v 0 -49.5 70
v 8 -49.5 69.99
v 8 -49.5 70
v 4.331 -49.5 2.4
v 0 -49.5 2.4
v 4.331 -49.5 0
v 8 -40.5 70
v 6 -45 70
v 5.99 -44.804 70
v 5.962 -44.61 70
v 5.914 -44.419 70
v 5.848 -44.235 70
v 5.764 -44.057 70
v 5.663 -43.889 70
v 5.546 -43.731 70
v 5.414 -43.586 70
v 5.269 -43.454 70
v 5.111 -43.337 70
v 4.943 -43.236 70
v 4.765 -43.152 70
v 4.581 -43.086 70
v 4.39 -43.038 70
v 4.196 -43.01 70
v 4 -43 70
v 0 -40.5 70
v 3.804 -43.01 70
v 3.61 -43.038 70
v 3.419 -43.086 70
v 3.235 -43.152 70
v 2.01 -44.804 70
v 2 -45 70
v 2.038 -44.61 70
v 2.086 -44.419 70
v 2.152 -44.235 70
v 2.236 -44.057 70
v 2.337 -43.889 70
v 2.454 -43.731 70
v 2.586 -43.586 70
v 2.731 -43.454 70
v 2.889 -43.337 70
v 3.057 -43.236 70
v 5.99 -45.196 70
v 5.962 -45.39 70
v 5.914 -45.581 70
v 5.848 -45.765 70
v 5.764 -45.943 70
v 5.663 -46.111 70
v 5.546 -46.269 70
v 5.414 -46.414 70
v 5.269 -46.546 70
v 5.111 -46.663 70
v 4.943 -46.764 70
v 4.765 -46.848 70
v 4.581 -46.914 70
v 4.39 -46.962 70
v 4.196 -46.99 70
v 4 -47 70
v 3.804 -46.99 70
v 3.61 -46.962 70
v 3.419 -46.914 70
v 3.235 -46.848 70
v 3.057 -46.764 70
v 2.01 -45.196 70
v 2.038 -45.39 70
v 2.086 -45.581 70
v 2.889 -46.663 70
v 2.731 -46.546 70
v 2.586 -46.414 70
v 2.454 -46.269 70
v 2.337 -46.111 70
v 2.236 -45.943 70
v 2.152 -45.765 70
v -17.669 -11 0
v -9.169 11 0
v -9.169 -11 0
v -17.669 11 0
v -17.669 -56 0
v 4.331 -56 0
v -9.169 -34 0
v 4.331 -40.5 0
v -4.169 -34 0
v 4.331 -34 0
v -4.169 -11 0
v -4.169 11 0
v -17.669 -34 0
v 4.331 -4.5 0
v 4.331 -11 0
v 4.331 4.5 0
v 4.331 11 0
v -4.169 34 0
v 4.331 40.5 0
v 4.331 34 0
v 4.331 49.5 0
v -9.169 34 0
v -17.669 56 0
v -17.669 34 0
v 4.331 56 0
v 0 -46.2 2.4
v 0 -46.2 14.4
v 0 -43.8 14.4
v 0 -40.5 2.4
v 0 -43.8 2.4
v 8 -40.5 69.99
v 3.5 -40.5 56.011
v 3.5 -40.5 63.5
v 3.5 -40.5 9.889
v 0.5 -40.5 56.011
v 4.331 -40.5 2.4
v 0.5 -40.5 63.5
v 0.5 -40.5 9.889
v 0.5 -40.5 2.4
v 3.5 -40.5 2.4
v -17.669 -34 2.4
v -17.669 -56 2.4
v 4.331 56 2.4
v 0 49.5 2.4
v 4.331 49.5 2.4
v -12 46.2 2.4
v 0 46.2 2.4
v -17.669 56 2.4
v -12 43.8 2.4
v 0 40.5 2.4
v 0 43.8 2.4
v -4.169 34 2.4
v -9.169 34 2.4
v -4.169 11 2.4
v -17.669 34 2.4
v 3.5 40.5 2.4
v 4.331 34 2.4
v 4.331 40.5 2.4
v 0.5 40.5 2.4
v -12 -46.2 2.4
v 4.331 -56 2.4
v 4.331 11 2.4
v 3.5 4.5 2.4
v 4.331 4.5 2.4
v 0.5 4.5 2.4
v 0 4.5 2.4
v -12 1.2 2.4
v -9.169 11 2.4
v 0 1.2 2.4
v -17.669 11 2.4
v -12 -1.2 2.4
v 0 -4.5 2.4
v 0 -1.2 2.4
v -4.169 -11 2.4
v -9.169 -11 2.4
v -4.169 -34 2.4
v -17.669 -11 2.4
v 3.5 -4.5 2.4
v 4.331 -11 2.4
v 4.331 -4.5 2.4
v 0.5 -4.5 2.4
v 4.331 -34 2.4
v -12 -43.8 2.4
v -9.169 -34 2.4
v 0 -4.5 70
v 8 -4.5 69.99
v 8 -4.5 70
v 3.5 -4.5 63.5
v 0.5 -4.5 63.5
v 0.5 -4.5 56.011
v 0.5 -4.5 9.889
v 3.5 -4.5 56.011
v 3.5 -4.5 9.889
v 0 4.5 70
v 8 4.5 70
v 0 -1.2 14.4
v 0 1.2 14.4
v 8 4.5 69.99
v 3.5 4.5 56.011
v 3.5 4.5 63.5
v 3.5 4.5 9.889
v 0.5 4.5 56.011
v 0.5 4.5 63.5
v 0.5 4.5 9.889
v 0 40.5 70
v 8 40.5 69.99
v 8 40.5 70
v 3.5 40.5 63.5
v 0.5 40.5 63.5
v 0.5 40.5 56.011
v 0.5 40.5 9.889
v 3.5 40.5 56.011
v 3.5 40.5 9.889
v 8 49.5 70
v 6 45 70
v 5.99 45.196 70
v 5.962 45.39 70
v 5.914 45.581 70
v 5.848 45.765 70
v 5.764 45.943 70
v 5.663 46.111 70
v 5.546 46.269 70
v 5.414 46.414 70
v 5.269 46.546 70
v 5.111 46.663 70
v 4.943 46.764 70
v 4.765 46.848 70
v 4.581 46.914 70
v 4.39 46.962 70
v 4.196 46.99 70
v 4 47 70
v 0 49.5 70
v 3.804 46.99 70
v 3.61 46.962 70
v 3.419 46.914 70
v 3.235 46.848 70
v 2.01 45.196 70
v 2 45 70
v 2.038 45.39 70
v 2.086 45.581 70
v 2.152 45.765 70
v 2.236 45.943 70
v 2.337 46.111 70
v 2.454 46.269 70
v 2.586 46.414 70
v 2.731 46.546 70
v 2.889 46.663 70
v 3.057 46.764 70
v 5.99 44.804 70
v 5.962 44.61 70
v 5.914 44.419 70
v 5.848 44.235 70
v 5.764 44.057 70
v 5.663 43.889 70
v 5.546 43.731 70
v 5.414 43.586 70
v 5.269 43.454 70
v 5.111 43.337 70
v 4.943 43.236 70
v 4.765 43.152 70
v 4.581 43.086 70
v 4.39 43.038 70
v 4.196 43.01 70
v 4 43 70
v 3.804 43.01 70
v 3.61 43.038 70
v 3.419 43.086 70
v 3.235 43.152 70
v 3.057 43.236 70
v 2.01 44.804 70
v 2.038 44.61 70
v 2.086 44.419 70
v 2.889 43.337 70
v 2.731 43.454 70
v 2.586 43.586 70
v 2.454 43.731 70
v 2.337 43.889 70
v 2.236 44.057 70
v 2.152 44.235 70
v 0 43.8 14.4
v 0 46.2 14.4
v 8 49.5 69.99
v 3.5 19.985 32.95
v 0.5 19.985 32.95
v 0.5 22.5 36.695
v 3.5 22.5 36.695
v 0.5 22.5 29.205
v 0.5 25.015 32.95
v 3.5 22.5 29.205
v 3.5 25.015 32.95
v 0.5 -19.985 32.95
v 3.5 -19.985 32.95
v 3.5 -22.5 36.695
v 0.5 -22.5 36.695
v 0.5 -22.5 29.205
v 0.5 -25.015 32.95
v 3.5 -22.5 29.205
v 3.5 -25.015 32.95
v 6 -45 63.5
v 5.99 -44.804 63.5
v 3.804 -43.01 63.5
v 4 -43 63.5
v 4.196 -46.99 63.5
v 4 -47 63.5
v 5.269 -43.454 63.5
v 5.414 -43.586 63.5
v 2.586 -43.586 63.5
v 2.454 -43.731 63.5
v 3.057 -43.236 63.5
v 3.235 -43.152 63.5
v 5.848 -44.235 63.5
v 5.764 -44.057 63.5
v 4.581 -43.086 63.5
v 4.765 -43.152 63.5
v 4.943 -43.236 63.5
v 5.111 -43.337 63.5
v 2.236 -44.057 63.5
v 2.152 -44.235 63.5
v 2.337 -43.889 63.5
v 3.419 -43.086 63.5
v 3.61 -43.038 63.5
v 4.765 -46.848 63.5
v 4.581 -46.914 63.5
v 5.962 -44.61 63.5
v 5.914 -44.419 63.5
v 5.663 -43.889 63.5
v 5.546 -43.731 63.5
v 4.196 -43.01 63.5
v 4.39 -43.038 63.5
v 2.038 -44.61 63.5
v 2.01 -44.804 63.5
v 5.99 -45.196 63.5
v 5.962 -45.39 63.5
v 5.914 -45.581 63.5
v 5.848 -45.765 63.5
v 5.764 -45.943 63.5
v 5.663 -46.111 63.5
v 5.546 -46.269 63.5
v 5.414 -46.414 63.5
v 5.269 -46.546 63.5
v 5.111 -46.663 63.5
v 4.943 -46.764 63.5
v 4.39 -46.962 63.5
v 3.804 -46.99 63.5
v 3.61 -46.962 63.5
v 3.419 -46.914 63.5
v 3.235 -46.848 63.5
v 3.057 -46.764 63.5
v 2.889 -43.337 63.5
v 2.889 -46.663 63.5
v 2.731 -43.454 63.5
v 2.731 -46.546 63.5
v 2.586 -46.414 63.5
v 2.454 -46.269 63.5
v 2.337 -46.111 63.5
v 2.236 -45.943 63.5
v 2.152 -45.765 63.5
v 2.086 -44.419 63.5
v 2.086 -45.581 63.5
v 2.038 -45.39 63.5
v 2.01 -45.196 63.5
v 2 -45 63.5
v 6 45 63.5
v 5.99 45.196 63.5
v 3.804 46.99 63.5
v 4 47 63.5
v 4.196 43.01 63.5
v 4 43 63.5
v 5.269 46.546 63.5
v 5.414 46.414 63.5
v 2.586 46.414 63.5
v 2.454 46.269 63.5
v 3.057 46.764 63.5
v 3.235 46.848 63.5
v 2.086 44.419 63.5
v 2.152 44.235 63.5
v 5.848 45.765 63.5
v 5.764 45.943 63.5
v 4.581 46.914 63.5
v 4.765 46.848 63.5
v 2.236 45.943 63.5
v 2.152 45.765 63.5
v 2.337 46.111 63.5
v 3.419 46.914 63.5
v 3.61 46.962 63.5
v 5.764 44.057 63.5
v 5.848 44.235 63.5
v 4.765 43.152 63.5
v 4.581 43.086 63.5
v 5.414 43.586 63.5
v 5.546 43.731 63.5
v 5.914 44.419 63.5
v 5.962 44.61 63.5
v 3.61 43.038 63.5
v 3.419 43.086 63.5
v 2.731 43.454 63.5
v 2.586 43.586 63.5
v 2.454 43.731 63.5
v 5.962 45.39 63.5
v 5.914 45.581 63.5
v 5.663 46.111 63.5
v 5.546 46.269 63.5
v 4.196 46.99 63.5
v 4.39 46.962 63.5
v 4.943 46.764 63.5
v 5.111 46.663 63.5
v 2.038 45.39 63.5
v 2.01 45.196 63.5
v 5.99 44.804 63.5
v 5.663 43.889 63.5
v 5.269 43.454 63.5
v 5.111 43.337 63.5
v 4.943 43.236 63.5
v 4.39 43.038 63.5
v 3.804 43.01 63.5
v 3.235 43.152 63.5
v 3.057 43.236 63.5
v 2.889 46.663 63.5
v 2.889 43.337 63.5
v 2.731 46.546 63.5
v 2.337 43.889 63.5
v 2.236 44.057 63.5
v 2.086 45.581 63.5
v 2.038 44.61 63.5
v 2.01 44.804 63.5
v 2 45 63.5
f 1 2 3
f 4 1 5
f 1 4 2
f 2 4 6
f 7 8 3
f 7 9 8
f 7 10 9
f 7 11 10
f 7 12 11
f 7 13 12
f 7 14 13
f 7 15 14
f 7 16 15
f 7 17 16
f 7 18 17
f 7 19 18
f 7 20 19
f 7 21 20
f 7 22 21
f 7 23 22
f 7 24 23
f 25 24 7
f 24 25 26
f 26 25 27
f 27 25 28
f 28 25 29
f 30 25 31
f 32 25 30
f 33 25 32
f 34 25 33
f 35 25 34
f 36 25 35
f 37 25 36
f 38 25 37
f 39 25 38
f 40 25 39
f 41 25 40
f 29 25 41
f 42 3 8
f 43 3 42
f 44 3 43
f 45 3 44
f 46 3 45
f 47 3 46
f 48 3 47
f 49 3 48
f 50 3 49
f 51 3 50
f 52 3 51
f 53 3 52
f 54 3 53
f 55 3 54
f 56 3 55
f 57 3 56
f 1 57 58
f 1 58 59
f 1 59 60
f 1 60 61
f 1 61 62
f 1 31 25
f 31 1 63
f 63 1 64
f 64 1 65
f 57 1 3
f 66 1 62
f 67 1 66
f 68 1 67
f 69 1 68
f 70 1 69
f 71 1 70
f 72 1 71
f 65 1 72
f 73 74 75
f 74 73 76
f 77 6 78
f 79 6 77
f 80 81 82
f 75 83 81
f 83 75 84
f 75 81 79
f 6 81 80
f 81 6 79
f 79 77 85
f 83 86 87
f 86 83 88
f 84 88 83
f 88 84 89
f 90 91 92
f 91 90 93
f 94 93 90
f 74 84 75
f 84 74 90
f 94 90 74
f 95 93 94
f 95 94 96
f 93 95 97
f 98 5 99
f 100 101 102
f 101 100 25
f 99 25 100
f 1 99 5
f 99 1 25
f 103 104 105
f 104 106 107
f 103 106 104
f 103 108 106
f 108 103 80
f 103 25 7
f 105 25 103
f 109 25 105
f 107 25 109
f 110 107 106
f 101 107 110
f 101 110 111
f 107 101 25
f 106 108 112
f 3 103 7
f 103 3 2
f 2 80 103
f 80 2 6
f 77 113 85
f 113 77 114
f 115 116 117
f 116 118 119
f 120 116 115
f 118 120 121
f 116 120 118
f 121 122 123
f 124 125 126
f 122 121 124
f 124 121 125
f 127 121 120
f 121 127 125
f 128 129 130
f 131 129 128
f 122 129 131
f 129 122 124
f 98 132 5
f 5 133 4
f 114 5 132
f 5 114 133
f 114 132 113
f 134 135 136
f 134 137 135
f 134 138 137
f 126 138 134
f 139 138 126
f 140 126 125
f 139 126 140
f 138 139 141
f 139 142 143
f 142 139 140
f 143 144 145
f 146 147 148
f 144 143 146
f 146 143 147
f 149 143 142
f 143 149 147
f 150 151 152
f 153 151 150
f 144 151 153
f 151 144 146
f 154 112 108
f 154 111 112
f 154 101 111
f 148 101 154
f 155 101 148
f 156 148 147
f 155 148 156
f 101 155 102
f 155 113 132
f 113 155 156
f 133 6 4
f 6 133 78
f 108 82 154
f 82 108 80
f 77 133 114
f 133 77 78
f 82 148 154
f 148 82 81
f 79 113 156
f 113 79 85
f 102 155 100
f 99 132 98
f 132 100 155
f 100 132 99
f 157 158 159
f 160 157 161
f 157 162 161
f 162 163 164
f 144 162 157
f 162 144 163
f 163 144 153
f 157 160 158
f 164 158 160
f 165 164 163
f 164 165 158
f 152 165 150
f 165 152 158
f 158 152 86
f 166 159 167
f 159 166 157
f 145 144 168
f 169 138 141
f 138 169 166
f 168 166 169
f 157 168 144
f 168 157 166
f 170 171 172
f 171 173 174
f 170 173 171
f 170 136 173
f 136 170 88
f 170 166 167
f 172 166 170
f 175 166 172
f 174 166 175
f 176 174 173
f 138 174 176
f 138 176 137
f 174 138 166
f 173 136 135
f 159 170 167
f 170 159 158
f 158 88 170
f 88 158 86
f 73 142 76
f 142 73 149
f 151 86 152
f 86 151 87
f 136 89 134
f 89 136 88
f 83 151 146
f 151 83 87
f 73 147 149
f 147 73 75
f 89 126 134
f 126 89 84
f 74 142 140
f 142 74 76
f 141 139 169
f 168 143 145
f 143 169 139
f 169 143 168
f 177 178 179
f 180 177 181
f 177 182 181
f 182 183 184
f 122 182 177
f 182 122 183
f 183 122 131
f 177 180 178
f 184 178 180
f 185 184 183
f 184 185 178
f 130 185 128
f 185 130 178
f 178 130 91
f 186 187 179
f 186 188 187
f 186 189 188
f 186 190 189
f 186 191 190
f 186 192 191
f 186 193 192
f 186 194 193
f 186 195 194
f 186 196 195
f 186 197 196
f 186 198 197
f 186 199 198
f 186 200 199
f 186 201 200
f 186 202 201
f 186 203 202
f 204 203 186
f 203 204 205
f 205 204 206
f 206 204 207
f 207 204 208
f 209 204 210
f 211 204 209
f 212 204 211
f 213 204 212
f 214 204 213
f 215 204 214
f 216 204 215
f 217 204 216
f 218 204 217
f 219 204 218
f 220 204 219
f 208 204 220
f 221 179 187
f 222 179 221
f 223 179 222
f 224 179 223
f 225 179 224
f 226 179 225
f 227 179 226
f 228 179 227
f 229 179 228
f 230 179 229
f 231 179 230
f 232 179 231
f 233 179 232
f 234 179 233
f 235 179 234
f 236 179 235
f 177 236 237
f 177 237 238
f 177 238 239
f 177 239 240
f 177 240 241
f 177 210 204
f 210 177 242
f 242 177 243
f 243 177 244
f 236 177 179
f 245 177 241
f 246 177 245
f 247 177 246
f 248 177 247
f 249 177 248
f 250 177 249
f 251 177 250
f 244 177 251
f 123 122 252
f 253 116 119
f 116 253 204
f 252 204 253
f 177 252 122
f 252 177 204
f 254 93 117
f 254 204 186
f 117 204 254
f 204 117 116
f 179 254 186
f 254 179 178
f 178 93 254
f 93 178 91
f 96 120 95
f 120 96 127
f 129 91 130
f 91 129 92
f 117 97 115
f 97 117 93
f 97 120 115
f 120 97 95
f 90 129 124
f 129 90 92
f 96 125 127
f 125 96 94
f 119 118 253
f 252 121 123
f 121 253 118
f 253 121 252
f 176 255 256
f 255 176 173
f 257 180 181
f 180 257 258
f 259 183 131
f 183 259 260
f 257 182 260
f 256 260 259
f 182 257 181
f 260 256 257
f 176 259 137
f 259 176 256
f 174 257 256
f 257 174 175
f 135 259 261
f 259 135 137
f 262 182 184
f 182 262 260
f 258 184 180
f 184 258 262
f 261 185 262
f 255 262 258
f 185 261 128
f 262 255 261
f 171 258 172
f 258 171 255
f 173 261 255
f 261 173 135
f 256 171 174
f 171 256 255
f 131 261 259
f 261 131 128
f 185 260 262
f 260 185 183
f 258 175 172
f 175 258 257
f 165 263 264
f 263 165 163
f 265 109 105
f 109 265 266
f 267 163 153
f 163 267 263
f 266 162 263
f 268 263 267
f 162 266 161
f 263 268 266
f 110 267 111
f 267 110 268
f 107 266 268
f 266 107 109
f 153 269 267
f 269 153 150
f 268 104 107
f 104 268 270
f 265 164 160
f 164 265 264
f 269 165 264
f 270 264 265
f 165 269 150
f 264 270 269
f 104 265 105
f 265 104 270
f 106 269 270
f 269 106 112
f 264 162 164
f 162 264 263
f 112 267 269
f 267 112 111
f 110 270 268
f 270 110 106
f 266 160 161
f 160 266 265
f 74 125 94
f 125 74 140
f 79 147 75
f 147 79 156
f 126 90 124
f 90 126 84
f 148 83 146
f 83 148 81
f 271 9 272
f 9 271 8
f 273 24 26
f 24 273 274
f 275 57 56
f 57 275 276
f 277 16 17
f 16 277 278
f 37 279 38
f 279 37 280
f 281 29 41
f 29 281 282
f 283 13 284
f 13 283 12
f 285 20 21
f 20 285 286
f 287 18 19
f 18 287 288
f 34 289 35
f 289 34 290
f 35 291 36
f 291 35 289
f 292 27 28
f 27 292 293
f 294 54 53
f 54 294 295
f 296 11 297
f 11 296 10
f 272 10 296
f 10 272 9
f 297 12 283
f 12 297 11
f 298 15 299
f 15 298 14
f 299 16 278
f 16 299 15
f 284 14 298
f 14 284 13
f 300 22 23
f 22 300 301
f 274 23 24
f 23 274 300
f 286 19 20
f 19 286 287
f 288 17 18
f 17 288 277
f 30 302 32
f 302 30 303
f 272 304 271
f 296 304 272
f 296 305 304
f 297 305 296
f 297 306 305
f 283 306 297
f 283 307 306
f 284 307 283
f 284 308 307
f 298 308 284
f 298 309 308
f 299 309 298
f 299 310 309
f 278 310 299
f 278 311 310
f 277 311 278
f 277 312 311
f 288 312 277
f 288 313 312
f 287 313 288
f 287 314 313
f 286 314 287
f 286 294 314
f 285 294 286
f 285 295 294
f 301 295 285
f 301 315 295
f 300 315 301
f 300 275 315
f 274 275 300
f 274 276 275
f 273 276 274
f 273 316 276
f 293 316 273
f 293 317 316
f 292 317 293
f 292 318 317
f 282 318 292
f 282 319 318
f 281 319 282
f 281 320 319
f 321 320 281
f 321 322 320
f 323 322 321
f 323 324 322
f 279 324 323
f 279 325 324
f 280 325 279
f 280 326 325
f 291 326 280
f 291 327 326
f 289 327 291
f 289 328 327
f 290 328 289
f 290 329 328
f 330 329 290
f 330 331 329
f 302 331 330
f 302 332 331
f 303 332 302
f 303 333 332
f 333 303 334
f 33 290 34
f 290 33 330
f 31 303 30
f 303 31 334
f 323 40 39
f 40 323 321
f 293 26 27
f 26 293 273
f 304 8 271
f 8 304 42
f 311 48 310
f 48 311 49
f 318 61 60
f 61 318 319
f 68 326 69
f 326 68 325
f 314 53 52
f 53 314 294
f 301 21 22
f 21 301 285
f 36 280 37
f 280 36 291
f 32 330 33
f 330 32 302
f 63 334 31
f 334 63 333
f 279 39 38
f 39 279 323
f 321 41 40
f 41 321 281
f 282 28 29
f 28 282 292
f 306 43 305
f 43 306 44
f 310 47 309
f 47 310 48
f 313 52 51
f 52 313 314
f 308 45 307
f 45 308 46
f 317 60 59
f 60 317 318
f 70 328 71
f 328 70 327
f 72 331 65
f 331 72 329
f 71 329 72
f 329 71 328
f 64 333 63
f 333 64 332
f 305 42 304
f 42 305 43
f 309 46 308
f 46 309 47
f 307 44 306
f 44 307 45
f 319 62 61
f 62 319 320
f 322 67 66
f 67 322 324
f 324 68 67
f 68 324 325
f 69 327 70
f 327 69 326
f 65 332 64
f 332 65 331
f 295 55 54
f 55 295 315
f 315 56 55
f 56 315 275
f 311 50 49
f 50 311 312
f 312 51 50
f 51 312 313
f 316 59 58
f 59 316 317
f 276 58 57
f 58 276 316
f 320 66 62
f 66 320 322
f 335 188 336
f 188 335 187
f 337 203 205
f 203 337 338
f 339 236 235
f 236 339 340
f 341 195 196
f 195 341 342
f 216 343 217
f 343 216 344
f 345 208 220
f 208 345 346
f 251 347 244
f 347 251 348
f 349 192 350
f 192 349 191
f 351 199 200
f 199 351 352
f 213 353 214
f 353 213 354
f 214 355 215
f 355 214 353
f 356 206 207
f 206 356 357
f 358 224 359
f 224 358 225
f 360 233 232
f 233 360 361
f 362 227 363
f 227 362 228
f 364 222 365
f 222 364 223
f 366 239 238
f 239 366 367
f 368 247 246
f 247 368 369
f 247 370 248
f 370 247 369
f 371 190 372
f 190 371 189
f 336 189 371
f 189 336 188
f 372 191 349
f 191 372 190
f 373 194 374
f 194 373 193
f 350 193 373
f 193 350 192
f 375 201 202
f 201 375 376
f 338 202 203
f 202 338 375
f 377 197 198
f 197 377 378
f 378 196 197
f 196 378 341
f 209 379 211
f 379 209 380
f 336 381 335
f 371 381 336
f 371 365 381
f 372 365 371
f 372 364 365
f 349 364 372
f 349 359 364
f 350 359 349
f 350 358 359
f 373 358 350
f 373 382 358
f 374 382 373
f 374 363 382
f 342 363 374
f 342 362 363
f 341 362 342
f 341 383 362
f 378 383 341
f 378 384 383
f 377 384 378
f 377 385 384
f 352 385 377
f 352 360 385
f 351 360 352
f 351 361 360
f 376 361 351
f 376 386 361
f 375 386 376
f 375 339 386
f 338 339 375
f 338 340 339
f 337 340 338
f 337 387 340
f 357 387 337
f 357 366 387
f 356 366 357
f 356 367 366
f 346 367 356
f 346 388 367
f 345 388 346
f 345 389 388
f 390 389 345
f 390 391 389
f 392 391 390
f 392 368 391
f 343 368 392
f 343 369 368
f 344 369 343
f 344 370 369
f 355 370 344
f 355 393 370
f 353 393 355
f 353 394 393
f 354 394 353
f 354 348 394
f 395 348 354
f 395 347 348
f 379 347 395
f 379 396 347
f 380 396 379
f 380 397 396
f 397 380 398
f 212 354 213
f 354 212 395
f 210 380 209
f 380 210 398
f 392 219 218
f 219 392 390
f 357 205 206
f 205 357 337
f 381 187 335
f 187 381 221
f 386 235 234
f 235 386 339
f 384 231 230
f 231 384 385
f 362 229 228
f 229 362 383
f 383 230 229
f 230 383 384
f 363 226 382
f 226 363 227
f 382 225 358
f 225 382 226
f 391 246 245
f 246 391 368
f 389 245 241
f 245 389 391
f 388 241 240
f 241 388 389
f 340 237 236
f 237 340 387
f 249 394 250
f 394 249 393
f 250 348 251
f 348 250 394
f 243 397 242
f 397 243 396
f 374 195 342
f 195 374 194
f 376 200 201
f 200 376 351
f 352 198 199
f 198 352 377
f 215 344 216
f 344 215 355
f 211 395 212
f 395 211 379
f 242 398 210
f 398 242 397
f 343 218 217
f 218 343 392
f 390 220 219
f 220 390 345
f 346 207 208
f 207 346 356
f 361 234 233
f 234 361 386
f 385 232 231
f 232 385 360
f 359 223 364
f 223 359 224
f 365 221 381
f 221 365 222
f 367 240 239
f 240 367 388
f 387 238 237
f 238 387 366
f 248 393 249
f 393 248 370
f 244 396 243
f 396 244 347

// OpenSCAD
// Apache 2800 Bracket
// Copyright (c) 2026 William Chrapcynski
// Licensed under CC BY-NC-SA 4.0
// https://creativecommons.org/licenses/by-nc-sa/4.0/

/* [Bracket] */
// Bracket Height
bracket_height = 70;
// Post Depth
post_depth = 8;
// Post Width
post_width = 9;
// Post Spacing - Must match screw_position_y in the plate
post_spacing = 45; 
// Wall Draft - Sets angle / bracket lean
wall_draft = 3;
// Wall Draft Offset
draft_offset = bracket_height * tan(wall_draft);

/* [Pads] */
// Pad 
// Pad Length (X)
pad_length = 22;
// Pad Width (Y)
pad_width = 22;
// Pad Thickness
pad_thickness = 2.4;
// Tie Strip Width
tie_strip_width = 5;

/* [Gussets] */
// Guesset Size
gusset_size = 12;
// Gusset Thickness
gusset_thickness = 2.4;

/* [Braces] */
// Brace Thickness
brace_thickness = 3;
// Brace Width
brace_width = 6;
// Brace Top Gap
brace_top_gap = 6.5;

/* [Inserts] */
// Insert Hole Diameter
insert_hole_diameter = 4;
// Insert Hole Depth
insert_hole_depth = 6.5;

/* [Misc] */
// Rounding segments
$fn = 64;

difference() {
    union() {
        // Create Posts, Feet, and Gussets
        for(y = [-post_spacing, 0, post_spacing])
            translate([0, y, 0]) {
                hull() {
                    translate([0, -post_width / 2, 0])
                        cube([post_depth - draft_offset, post_width, 0.01]);
                    translate([0, -post_width / 2, bracket_height - 0.01])
                        cube([post_depth, post_width, 0.01]);
                }
                translate([post_depth - draft_offset - pad_length, -pad_width /2, 0])
                    cube([pad_length, pad_width, pad_thickness]);
                translate([0, gusset_thickness / 2, pad_thickness])
                    rotate([90, 0, 0]) 
                        linear_extrude(height = gusset_thickness) 
                            polygon([[0, 0], [-gusset_size, 0], [0, gusset_size]]);
            }
            // Create Tie Strip
            translate([post_depth - draft_offset - (pad_length / 2) - (tie_strip_width / 2), -post_spacing, 0])
                cube([tie_strip_width, 2 * post_spacing, pad_thickness]);

        // Create Cross Bracing
        for(m = [0,1])
            mirror([0, m, 0]) {
                hull() {
                    translate([0.5, (post_width / 2) - 1, pad_thickness])
                        cube([brace_thickness, 1, brace_width]);
                    translate([0.5, post_spacing - (post_width / 2), bracket_height - brace_top_gap - brace_width])
                        cube([brace_thickness, 1, brace_width]);
                }

                hull() {
                    translate([0.5, post_spacing - (post_width / 2), pad_thickness])
                        cube([brace_thickness, 1, brace_width]);
                    translate([0.5, (post_width / 2) - 1, bracket_height - brace_top_gap - brace_width])
                        cube([brace_thickness, 1, brace_width]);
                }
        }
    }
    // Create Insert Holes
    for(sy = [-1, 1])
        translate([post_depth / 2, sy * post_spacing, bracket_height - insert_hole_depth])
            cylinder(d = insert_hole_diameter, h = insert_hole_depth + 1);
}
